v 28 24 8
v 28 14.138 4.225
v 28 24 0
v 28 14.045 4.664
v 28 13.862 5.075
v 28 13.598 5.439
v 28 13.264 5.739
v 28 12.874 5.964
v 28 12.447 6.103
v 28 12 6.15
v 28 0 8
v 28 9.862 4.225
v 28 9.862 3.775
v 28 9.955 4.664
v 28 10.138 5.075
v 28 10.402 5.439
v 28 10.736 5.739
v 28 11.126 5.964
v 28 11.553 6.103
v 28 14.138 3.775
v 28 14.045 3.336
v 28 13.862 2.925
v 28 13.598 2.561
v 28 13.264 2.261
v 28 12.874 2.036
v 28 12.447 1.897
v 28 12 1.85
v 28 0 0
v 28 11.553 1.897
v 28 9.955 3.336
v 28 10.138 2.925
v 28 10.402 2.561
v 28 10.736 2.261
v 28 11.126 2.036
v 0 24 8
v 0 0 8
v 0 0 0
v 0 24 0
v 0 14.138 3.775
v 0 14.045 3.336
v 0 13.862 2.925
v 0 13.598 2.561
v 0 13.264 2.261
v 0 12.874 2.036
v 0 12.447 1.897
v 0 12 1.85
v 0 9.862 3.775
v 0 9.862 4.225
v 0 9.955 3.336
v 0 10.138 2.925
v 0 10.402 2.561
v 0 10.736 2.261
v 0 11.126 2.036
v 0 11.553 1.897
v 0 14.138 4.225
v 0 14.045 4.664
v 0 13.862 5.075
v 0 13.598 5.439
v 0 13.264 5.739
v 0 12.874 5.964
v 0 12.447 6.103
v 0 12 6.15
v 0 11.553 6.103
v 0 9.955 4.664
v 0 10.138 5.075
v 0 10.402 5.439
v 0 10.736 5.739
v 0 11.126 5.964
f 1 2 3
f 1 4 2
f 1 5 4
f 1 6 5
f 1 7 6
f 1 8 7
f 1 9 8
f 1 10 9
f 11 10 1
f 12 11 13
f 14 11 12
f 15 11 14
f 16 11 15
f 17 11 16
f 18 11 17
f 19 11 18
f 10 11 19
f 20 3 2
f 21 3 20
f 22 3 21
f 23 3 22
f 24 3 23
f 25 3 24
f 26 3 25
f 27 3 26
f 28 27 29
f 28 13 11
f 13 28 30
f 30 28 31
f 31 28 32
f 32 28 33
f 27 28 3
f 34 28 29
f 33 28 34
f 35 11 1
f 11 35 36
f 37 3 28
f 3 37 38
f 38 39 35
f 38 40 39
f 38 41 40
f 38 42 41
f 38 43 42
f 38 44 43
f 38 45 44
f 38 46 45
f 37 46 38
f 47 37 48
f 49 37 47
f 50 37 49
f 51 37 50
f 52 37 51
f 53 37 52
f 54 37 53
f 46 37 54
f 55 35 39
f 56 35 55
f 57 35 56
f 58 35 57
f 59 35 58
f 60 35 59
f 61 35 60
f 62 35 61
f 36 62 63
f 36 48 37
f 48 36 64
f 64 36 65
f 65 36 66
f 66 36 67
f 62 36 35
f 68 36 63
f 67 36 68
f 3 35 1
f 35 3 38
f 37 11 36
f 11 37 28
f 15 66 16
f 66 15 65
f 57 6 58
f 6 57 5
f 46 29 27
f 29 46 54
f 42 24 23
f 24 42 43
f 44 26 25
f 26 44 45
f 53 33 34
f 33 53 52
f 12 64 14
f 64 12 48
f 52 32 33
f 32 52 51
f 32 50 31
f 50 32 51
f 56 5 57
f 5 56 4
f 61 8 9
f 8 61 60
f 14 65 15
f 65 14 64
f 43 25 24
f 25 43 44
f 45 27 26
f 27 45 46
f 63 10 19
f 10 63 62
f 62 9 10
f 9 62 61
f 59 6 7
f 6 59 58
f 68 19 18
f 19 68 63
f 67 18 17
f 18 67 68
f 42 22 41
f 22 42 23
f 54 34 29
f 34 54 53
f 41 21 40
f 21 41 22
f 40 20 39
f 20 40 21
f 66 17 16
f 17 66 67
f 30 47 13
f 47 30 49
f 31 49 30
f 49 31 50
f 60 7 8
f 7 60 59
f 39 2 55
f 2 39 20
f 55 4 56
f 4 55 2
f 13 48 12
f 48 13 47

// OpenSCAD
// LEFT ENTRY TRACK
// entry track
color ("tan")
difference() {
union() {
    // horizontal piece
    cube([28,24,8]);
}
    // left hole
    translate([-4,12,4])
    rotate([0,90,0])
    cylinder(r=2.15,60, $fn=30);
}
